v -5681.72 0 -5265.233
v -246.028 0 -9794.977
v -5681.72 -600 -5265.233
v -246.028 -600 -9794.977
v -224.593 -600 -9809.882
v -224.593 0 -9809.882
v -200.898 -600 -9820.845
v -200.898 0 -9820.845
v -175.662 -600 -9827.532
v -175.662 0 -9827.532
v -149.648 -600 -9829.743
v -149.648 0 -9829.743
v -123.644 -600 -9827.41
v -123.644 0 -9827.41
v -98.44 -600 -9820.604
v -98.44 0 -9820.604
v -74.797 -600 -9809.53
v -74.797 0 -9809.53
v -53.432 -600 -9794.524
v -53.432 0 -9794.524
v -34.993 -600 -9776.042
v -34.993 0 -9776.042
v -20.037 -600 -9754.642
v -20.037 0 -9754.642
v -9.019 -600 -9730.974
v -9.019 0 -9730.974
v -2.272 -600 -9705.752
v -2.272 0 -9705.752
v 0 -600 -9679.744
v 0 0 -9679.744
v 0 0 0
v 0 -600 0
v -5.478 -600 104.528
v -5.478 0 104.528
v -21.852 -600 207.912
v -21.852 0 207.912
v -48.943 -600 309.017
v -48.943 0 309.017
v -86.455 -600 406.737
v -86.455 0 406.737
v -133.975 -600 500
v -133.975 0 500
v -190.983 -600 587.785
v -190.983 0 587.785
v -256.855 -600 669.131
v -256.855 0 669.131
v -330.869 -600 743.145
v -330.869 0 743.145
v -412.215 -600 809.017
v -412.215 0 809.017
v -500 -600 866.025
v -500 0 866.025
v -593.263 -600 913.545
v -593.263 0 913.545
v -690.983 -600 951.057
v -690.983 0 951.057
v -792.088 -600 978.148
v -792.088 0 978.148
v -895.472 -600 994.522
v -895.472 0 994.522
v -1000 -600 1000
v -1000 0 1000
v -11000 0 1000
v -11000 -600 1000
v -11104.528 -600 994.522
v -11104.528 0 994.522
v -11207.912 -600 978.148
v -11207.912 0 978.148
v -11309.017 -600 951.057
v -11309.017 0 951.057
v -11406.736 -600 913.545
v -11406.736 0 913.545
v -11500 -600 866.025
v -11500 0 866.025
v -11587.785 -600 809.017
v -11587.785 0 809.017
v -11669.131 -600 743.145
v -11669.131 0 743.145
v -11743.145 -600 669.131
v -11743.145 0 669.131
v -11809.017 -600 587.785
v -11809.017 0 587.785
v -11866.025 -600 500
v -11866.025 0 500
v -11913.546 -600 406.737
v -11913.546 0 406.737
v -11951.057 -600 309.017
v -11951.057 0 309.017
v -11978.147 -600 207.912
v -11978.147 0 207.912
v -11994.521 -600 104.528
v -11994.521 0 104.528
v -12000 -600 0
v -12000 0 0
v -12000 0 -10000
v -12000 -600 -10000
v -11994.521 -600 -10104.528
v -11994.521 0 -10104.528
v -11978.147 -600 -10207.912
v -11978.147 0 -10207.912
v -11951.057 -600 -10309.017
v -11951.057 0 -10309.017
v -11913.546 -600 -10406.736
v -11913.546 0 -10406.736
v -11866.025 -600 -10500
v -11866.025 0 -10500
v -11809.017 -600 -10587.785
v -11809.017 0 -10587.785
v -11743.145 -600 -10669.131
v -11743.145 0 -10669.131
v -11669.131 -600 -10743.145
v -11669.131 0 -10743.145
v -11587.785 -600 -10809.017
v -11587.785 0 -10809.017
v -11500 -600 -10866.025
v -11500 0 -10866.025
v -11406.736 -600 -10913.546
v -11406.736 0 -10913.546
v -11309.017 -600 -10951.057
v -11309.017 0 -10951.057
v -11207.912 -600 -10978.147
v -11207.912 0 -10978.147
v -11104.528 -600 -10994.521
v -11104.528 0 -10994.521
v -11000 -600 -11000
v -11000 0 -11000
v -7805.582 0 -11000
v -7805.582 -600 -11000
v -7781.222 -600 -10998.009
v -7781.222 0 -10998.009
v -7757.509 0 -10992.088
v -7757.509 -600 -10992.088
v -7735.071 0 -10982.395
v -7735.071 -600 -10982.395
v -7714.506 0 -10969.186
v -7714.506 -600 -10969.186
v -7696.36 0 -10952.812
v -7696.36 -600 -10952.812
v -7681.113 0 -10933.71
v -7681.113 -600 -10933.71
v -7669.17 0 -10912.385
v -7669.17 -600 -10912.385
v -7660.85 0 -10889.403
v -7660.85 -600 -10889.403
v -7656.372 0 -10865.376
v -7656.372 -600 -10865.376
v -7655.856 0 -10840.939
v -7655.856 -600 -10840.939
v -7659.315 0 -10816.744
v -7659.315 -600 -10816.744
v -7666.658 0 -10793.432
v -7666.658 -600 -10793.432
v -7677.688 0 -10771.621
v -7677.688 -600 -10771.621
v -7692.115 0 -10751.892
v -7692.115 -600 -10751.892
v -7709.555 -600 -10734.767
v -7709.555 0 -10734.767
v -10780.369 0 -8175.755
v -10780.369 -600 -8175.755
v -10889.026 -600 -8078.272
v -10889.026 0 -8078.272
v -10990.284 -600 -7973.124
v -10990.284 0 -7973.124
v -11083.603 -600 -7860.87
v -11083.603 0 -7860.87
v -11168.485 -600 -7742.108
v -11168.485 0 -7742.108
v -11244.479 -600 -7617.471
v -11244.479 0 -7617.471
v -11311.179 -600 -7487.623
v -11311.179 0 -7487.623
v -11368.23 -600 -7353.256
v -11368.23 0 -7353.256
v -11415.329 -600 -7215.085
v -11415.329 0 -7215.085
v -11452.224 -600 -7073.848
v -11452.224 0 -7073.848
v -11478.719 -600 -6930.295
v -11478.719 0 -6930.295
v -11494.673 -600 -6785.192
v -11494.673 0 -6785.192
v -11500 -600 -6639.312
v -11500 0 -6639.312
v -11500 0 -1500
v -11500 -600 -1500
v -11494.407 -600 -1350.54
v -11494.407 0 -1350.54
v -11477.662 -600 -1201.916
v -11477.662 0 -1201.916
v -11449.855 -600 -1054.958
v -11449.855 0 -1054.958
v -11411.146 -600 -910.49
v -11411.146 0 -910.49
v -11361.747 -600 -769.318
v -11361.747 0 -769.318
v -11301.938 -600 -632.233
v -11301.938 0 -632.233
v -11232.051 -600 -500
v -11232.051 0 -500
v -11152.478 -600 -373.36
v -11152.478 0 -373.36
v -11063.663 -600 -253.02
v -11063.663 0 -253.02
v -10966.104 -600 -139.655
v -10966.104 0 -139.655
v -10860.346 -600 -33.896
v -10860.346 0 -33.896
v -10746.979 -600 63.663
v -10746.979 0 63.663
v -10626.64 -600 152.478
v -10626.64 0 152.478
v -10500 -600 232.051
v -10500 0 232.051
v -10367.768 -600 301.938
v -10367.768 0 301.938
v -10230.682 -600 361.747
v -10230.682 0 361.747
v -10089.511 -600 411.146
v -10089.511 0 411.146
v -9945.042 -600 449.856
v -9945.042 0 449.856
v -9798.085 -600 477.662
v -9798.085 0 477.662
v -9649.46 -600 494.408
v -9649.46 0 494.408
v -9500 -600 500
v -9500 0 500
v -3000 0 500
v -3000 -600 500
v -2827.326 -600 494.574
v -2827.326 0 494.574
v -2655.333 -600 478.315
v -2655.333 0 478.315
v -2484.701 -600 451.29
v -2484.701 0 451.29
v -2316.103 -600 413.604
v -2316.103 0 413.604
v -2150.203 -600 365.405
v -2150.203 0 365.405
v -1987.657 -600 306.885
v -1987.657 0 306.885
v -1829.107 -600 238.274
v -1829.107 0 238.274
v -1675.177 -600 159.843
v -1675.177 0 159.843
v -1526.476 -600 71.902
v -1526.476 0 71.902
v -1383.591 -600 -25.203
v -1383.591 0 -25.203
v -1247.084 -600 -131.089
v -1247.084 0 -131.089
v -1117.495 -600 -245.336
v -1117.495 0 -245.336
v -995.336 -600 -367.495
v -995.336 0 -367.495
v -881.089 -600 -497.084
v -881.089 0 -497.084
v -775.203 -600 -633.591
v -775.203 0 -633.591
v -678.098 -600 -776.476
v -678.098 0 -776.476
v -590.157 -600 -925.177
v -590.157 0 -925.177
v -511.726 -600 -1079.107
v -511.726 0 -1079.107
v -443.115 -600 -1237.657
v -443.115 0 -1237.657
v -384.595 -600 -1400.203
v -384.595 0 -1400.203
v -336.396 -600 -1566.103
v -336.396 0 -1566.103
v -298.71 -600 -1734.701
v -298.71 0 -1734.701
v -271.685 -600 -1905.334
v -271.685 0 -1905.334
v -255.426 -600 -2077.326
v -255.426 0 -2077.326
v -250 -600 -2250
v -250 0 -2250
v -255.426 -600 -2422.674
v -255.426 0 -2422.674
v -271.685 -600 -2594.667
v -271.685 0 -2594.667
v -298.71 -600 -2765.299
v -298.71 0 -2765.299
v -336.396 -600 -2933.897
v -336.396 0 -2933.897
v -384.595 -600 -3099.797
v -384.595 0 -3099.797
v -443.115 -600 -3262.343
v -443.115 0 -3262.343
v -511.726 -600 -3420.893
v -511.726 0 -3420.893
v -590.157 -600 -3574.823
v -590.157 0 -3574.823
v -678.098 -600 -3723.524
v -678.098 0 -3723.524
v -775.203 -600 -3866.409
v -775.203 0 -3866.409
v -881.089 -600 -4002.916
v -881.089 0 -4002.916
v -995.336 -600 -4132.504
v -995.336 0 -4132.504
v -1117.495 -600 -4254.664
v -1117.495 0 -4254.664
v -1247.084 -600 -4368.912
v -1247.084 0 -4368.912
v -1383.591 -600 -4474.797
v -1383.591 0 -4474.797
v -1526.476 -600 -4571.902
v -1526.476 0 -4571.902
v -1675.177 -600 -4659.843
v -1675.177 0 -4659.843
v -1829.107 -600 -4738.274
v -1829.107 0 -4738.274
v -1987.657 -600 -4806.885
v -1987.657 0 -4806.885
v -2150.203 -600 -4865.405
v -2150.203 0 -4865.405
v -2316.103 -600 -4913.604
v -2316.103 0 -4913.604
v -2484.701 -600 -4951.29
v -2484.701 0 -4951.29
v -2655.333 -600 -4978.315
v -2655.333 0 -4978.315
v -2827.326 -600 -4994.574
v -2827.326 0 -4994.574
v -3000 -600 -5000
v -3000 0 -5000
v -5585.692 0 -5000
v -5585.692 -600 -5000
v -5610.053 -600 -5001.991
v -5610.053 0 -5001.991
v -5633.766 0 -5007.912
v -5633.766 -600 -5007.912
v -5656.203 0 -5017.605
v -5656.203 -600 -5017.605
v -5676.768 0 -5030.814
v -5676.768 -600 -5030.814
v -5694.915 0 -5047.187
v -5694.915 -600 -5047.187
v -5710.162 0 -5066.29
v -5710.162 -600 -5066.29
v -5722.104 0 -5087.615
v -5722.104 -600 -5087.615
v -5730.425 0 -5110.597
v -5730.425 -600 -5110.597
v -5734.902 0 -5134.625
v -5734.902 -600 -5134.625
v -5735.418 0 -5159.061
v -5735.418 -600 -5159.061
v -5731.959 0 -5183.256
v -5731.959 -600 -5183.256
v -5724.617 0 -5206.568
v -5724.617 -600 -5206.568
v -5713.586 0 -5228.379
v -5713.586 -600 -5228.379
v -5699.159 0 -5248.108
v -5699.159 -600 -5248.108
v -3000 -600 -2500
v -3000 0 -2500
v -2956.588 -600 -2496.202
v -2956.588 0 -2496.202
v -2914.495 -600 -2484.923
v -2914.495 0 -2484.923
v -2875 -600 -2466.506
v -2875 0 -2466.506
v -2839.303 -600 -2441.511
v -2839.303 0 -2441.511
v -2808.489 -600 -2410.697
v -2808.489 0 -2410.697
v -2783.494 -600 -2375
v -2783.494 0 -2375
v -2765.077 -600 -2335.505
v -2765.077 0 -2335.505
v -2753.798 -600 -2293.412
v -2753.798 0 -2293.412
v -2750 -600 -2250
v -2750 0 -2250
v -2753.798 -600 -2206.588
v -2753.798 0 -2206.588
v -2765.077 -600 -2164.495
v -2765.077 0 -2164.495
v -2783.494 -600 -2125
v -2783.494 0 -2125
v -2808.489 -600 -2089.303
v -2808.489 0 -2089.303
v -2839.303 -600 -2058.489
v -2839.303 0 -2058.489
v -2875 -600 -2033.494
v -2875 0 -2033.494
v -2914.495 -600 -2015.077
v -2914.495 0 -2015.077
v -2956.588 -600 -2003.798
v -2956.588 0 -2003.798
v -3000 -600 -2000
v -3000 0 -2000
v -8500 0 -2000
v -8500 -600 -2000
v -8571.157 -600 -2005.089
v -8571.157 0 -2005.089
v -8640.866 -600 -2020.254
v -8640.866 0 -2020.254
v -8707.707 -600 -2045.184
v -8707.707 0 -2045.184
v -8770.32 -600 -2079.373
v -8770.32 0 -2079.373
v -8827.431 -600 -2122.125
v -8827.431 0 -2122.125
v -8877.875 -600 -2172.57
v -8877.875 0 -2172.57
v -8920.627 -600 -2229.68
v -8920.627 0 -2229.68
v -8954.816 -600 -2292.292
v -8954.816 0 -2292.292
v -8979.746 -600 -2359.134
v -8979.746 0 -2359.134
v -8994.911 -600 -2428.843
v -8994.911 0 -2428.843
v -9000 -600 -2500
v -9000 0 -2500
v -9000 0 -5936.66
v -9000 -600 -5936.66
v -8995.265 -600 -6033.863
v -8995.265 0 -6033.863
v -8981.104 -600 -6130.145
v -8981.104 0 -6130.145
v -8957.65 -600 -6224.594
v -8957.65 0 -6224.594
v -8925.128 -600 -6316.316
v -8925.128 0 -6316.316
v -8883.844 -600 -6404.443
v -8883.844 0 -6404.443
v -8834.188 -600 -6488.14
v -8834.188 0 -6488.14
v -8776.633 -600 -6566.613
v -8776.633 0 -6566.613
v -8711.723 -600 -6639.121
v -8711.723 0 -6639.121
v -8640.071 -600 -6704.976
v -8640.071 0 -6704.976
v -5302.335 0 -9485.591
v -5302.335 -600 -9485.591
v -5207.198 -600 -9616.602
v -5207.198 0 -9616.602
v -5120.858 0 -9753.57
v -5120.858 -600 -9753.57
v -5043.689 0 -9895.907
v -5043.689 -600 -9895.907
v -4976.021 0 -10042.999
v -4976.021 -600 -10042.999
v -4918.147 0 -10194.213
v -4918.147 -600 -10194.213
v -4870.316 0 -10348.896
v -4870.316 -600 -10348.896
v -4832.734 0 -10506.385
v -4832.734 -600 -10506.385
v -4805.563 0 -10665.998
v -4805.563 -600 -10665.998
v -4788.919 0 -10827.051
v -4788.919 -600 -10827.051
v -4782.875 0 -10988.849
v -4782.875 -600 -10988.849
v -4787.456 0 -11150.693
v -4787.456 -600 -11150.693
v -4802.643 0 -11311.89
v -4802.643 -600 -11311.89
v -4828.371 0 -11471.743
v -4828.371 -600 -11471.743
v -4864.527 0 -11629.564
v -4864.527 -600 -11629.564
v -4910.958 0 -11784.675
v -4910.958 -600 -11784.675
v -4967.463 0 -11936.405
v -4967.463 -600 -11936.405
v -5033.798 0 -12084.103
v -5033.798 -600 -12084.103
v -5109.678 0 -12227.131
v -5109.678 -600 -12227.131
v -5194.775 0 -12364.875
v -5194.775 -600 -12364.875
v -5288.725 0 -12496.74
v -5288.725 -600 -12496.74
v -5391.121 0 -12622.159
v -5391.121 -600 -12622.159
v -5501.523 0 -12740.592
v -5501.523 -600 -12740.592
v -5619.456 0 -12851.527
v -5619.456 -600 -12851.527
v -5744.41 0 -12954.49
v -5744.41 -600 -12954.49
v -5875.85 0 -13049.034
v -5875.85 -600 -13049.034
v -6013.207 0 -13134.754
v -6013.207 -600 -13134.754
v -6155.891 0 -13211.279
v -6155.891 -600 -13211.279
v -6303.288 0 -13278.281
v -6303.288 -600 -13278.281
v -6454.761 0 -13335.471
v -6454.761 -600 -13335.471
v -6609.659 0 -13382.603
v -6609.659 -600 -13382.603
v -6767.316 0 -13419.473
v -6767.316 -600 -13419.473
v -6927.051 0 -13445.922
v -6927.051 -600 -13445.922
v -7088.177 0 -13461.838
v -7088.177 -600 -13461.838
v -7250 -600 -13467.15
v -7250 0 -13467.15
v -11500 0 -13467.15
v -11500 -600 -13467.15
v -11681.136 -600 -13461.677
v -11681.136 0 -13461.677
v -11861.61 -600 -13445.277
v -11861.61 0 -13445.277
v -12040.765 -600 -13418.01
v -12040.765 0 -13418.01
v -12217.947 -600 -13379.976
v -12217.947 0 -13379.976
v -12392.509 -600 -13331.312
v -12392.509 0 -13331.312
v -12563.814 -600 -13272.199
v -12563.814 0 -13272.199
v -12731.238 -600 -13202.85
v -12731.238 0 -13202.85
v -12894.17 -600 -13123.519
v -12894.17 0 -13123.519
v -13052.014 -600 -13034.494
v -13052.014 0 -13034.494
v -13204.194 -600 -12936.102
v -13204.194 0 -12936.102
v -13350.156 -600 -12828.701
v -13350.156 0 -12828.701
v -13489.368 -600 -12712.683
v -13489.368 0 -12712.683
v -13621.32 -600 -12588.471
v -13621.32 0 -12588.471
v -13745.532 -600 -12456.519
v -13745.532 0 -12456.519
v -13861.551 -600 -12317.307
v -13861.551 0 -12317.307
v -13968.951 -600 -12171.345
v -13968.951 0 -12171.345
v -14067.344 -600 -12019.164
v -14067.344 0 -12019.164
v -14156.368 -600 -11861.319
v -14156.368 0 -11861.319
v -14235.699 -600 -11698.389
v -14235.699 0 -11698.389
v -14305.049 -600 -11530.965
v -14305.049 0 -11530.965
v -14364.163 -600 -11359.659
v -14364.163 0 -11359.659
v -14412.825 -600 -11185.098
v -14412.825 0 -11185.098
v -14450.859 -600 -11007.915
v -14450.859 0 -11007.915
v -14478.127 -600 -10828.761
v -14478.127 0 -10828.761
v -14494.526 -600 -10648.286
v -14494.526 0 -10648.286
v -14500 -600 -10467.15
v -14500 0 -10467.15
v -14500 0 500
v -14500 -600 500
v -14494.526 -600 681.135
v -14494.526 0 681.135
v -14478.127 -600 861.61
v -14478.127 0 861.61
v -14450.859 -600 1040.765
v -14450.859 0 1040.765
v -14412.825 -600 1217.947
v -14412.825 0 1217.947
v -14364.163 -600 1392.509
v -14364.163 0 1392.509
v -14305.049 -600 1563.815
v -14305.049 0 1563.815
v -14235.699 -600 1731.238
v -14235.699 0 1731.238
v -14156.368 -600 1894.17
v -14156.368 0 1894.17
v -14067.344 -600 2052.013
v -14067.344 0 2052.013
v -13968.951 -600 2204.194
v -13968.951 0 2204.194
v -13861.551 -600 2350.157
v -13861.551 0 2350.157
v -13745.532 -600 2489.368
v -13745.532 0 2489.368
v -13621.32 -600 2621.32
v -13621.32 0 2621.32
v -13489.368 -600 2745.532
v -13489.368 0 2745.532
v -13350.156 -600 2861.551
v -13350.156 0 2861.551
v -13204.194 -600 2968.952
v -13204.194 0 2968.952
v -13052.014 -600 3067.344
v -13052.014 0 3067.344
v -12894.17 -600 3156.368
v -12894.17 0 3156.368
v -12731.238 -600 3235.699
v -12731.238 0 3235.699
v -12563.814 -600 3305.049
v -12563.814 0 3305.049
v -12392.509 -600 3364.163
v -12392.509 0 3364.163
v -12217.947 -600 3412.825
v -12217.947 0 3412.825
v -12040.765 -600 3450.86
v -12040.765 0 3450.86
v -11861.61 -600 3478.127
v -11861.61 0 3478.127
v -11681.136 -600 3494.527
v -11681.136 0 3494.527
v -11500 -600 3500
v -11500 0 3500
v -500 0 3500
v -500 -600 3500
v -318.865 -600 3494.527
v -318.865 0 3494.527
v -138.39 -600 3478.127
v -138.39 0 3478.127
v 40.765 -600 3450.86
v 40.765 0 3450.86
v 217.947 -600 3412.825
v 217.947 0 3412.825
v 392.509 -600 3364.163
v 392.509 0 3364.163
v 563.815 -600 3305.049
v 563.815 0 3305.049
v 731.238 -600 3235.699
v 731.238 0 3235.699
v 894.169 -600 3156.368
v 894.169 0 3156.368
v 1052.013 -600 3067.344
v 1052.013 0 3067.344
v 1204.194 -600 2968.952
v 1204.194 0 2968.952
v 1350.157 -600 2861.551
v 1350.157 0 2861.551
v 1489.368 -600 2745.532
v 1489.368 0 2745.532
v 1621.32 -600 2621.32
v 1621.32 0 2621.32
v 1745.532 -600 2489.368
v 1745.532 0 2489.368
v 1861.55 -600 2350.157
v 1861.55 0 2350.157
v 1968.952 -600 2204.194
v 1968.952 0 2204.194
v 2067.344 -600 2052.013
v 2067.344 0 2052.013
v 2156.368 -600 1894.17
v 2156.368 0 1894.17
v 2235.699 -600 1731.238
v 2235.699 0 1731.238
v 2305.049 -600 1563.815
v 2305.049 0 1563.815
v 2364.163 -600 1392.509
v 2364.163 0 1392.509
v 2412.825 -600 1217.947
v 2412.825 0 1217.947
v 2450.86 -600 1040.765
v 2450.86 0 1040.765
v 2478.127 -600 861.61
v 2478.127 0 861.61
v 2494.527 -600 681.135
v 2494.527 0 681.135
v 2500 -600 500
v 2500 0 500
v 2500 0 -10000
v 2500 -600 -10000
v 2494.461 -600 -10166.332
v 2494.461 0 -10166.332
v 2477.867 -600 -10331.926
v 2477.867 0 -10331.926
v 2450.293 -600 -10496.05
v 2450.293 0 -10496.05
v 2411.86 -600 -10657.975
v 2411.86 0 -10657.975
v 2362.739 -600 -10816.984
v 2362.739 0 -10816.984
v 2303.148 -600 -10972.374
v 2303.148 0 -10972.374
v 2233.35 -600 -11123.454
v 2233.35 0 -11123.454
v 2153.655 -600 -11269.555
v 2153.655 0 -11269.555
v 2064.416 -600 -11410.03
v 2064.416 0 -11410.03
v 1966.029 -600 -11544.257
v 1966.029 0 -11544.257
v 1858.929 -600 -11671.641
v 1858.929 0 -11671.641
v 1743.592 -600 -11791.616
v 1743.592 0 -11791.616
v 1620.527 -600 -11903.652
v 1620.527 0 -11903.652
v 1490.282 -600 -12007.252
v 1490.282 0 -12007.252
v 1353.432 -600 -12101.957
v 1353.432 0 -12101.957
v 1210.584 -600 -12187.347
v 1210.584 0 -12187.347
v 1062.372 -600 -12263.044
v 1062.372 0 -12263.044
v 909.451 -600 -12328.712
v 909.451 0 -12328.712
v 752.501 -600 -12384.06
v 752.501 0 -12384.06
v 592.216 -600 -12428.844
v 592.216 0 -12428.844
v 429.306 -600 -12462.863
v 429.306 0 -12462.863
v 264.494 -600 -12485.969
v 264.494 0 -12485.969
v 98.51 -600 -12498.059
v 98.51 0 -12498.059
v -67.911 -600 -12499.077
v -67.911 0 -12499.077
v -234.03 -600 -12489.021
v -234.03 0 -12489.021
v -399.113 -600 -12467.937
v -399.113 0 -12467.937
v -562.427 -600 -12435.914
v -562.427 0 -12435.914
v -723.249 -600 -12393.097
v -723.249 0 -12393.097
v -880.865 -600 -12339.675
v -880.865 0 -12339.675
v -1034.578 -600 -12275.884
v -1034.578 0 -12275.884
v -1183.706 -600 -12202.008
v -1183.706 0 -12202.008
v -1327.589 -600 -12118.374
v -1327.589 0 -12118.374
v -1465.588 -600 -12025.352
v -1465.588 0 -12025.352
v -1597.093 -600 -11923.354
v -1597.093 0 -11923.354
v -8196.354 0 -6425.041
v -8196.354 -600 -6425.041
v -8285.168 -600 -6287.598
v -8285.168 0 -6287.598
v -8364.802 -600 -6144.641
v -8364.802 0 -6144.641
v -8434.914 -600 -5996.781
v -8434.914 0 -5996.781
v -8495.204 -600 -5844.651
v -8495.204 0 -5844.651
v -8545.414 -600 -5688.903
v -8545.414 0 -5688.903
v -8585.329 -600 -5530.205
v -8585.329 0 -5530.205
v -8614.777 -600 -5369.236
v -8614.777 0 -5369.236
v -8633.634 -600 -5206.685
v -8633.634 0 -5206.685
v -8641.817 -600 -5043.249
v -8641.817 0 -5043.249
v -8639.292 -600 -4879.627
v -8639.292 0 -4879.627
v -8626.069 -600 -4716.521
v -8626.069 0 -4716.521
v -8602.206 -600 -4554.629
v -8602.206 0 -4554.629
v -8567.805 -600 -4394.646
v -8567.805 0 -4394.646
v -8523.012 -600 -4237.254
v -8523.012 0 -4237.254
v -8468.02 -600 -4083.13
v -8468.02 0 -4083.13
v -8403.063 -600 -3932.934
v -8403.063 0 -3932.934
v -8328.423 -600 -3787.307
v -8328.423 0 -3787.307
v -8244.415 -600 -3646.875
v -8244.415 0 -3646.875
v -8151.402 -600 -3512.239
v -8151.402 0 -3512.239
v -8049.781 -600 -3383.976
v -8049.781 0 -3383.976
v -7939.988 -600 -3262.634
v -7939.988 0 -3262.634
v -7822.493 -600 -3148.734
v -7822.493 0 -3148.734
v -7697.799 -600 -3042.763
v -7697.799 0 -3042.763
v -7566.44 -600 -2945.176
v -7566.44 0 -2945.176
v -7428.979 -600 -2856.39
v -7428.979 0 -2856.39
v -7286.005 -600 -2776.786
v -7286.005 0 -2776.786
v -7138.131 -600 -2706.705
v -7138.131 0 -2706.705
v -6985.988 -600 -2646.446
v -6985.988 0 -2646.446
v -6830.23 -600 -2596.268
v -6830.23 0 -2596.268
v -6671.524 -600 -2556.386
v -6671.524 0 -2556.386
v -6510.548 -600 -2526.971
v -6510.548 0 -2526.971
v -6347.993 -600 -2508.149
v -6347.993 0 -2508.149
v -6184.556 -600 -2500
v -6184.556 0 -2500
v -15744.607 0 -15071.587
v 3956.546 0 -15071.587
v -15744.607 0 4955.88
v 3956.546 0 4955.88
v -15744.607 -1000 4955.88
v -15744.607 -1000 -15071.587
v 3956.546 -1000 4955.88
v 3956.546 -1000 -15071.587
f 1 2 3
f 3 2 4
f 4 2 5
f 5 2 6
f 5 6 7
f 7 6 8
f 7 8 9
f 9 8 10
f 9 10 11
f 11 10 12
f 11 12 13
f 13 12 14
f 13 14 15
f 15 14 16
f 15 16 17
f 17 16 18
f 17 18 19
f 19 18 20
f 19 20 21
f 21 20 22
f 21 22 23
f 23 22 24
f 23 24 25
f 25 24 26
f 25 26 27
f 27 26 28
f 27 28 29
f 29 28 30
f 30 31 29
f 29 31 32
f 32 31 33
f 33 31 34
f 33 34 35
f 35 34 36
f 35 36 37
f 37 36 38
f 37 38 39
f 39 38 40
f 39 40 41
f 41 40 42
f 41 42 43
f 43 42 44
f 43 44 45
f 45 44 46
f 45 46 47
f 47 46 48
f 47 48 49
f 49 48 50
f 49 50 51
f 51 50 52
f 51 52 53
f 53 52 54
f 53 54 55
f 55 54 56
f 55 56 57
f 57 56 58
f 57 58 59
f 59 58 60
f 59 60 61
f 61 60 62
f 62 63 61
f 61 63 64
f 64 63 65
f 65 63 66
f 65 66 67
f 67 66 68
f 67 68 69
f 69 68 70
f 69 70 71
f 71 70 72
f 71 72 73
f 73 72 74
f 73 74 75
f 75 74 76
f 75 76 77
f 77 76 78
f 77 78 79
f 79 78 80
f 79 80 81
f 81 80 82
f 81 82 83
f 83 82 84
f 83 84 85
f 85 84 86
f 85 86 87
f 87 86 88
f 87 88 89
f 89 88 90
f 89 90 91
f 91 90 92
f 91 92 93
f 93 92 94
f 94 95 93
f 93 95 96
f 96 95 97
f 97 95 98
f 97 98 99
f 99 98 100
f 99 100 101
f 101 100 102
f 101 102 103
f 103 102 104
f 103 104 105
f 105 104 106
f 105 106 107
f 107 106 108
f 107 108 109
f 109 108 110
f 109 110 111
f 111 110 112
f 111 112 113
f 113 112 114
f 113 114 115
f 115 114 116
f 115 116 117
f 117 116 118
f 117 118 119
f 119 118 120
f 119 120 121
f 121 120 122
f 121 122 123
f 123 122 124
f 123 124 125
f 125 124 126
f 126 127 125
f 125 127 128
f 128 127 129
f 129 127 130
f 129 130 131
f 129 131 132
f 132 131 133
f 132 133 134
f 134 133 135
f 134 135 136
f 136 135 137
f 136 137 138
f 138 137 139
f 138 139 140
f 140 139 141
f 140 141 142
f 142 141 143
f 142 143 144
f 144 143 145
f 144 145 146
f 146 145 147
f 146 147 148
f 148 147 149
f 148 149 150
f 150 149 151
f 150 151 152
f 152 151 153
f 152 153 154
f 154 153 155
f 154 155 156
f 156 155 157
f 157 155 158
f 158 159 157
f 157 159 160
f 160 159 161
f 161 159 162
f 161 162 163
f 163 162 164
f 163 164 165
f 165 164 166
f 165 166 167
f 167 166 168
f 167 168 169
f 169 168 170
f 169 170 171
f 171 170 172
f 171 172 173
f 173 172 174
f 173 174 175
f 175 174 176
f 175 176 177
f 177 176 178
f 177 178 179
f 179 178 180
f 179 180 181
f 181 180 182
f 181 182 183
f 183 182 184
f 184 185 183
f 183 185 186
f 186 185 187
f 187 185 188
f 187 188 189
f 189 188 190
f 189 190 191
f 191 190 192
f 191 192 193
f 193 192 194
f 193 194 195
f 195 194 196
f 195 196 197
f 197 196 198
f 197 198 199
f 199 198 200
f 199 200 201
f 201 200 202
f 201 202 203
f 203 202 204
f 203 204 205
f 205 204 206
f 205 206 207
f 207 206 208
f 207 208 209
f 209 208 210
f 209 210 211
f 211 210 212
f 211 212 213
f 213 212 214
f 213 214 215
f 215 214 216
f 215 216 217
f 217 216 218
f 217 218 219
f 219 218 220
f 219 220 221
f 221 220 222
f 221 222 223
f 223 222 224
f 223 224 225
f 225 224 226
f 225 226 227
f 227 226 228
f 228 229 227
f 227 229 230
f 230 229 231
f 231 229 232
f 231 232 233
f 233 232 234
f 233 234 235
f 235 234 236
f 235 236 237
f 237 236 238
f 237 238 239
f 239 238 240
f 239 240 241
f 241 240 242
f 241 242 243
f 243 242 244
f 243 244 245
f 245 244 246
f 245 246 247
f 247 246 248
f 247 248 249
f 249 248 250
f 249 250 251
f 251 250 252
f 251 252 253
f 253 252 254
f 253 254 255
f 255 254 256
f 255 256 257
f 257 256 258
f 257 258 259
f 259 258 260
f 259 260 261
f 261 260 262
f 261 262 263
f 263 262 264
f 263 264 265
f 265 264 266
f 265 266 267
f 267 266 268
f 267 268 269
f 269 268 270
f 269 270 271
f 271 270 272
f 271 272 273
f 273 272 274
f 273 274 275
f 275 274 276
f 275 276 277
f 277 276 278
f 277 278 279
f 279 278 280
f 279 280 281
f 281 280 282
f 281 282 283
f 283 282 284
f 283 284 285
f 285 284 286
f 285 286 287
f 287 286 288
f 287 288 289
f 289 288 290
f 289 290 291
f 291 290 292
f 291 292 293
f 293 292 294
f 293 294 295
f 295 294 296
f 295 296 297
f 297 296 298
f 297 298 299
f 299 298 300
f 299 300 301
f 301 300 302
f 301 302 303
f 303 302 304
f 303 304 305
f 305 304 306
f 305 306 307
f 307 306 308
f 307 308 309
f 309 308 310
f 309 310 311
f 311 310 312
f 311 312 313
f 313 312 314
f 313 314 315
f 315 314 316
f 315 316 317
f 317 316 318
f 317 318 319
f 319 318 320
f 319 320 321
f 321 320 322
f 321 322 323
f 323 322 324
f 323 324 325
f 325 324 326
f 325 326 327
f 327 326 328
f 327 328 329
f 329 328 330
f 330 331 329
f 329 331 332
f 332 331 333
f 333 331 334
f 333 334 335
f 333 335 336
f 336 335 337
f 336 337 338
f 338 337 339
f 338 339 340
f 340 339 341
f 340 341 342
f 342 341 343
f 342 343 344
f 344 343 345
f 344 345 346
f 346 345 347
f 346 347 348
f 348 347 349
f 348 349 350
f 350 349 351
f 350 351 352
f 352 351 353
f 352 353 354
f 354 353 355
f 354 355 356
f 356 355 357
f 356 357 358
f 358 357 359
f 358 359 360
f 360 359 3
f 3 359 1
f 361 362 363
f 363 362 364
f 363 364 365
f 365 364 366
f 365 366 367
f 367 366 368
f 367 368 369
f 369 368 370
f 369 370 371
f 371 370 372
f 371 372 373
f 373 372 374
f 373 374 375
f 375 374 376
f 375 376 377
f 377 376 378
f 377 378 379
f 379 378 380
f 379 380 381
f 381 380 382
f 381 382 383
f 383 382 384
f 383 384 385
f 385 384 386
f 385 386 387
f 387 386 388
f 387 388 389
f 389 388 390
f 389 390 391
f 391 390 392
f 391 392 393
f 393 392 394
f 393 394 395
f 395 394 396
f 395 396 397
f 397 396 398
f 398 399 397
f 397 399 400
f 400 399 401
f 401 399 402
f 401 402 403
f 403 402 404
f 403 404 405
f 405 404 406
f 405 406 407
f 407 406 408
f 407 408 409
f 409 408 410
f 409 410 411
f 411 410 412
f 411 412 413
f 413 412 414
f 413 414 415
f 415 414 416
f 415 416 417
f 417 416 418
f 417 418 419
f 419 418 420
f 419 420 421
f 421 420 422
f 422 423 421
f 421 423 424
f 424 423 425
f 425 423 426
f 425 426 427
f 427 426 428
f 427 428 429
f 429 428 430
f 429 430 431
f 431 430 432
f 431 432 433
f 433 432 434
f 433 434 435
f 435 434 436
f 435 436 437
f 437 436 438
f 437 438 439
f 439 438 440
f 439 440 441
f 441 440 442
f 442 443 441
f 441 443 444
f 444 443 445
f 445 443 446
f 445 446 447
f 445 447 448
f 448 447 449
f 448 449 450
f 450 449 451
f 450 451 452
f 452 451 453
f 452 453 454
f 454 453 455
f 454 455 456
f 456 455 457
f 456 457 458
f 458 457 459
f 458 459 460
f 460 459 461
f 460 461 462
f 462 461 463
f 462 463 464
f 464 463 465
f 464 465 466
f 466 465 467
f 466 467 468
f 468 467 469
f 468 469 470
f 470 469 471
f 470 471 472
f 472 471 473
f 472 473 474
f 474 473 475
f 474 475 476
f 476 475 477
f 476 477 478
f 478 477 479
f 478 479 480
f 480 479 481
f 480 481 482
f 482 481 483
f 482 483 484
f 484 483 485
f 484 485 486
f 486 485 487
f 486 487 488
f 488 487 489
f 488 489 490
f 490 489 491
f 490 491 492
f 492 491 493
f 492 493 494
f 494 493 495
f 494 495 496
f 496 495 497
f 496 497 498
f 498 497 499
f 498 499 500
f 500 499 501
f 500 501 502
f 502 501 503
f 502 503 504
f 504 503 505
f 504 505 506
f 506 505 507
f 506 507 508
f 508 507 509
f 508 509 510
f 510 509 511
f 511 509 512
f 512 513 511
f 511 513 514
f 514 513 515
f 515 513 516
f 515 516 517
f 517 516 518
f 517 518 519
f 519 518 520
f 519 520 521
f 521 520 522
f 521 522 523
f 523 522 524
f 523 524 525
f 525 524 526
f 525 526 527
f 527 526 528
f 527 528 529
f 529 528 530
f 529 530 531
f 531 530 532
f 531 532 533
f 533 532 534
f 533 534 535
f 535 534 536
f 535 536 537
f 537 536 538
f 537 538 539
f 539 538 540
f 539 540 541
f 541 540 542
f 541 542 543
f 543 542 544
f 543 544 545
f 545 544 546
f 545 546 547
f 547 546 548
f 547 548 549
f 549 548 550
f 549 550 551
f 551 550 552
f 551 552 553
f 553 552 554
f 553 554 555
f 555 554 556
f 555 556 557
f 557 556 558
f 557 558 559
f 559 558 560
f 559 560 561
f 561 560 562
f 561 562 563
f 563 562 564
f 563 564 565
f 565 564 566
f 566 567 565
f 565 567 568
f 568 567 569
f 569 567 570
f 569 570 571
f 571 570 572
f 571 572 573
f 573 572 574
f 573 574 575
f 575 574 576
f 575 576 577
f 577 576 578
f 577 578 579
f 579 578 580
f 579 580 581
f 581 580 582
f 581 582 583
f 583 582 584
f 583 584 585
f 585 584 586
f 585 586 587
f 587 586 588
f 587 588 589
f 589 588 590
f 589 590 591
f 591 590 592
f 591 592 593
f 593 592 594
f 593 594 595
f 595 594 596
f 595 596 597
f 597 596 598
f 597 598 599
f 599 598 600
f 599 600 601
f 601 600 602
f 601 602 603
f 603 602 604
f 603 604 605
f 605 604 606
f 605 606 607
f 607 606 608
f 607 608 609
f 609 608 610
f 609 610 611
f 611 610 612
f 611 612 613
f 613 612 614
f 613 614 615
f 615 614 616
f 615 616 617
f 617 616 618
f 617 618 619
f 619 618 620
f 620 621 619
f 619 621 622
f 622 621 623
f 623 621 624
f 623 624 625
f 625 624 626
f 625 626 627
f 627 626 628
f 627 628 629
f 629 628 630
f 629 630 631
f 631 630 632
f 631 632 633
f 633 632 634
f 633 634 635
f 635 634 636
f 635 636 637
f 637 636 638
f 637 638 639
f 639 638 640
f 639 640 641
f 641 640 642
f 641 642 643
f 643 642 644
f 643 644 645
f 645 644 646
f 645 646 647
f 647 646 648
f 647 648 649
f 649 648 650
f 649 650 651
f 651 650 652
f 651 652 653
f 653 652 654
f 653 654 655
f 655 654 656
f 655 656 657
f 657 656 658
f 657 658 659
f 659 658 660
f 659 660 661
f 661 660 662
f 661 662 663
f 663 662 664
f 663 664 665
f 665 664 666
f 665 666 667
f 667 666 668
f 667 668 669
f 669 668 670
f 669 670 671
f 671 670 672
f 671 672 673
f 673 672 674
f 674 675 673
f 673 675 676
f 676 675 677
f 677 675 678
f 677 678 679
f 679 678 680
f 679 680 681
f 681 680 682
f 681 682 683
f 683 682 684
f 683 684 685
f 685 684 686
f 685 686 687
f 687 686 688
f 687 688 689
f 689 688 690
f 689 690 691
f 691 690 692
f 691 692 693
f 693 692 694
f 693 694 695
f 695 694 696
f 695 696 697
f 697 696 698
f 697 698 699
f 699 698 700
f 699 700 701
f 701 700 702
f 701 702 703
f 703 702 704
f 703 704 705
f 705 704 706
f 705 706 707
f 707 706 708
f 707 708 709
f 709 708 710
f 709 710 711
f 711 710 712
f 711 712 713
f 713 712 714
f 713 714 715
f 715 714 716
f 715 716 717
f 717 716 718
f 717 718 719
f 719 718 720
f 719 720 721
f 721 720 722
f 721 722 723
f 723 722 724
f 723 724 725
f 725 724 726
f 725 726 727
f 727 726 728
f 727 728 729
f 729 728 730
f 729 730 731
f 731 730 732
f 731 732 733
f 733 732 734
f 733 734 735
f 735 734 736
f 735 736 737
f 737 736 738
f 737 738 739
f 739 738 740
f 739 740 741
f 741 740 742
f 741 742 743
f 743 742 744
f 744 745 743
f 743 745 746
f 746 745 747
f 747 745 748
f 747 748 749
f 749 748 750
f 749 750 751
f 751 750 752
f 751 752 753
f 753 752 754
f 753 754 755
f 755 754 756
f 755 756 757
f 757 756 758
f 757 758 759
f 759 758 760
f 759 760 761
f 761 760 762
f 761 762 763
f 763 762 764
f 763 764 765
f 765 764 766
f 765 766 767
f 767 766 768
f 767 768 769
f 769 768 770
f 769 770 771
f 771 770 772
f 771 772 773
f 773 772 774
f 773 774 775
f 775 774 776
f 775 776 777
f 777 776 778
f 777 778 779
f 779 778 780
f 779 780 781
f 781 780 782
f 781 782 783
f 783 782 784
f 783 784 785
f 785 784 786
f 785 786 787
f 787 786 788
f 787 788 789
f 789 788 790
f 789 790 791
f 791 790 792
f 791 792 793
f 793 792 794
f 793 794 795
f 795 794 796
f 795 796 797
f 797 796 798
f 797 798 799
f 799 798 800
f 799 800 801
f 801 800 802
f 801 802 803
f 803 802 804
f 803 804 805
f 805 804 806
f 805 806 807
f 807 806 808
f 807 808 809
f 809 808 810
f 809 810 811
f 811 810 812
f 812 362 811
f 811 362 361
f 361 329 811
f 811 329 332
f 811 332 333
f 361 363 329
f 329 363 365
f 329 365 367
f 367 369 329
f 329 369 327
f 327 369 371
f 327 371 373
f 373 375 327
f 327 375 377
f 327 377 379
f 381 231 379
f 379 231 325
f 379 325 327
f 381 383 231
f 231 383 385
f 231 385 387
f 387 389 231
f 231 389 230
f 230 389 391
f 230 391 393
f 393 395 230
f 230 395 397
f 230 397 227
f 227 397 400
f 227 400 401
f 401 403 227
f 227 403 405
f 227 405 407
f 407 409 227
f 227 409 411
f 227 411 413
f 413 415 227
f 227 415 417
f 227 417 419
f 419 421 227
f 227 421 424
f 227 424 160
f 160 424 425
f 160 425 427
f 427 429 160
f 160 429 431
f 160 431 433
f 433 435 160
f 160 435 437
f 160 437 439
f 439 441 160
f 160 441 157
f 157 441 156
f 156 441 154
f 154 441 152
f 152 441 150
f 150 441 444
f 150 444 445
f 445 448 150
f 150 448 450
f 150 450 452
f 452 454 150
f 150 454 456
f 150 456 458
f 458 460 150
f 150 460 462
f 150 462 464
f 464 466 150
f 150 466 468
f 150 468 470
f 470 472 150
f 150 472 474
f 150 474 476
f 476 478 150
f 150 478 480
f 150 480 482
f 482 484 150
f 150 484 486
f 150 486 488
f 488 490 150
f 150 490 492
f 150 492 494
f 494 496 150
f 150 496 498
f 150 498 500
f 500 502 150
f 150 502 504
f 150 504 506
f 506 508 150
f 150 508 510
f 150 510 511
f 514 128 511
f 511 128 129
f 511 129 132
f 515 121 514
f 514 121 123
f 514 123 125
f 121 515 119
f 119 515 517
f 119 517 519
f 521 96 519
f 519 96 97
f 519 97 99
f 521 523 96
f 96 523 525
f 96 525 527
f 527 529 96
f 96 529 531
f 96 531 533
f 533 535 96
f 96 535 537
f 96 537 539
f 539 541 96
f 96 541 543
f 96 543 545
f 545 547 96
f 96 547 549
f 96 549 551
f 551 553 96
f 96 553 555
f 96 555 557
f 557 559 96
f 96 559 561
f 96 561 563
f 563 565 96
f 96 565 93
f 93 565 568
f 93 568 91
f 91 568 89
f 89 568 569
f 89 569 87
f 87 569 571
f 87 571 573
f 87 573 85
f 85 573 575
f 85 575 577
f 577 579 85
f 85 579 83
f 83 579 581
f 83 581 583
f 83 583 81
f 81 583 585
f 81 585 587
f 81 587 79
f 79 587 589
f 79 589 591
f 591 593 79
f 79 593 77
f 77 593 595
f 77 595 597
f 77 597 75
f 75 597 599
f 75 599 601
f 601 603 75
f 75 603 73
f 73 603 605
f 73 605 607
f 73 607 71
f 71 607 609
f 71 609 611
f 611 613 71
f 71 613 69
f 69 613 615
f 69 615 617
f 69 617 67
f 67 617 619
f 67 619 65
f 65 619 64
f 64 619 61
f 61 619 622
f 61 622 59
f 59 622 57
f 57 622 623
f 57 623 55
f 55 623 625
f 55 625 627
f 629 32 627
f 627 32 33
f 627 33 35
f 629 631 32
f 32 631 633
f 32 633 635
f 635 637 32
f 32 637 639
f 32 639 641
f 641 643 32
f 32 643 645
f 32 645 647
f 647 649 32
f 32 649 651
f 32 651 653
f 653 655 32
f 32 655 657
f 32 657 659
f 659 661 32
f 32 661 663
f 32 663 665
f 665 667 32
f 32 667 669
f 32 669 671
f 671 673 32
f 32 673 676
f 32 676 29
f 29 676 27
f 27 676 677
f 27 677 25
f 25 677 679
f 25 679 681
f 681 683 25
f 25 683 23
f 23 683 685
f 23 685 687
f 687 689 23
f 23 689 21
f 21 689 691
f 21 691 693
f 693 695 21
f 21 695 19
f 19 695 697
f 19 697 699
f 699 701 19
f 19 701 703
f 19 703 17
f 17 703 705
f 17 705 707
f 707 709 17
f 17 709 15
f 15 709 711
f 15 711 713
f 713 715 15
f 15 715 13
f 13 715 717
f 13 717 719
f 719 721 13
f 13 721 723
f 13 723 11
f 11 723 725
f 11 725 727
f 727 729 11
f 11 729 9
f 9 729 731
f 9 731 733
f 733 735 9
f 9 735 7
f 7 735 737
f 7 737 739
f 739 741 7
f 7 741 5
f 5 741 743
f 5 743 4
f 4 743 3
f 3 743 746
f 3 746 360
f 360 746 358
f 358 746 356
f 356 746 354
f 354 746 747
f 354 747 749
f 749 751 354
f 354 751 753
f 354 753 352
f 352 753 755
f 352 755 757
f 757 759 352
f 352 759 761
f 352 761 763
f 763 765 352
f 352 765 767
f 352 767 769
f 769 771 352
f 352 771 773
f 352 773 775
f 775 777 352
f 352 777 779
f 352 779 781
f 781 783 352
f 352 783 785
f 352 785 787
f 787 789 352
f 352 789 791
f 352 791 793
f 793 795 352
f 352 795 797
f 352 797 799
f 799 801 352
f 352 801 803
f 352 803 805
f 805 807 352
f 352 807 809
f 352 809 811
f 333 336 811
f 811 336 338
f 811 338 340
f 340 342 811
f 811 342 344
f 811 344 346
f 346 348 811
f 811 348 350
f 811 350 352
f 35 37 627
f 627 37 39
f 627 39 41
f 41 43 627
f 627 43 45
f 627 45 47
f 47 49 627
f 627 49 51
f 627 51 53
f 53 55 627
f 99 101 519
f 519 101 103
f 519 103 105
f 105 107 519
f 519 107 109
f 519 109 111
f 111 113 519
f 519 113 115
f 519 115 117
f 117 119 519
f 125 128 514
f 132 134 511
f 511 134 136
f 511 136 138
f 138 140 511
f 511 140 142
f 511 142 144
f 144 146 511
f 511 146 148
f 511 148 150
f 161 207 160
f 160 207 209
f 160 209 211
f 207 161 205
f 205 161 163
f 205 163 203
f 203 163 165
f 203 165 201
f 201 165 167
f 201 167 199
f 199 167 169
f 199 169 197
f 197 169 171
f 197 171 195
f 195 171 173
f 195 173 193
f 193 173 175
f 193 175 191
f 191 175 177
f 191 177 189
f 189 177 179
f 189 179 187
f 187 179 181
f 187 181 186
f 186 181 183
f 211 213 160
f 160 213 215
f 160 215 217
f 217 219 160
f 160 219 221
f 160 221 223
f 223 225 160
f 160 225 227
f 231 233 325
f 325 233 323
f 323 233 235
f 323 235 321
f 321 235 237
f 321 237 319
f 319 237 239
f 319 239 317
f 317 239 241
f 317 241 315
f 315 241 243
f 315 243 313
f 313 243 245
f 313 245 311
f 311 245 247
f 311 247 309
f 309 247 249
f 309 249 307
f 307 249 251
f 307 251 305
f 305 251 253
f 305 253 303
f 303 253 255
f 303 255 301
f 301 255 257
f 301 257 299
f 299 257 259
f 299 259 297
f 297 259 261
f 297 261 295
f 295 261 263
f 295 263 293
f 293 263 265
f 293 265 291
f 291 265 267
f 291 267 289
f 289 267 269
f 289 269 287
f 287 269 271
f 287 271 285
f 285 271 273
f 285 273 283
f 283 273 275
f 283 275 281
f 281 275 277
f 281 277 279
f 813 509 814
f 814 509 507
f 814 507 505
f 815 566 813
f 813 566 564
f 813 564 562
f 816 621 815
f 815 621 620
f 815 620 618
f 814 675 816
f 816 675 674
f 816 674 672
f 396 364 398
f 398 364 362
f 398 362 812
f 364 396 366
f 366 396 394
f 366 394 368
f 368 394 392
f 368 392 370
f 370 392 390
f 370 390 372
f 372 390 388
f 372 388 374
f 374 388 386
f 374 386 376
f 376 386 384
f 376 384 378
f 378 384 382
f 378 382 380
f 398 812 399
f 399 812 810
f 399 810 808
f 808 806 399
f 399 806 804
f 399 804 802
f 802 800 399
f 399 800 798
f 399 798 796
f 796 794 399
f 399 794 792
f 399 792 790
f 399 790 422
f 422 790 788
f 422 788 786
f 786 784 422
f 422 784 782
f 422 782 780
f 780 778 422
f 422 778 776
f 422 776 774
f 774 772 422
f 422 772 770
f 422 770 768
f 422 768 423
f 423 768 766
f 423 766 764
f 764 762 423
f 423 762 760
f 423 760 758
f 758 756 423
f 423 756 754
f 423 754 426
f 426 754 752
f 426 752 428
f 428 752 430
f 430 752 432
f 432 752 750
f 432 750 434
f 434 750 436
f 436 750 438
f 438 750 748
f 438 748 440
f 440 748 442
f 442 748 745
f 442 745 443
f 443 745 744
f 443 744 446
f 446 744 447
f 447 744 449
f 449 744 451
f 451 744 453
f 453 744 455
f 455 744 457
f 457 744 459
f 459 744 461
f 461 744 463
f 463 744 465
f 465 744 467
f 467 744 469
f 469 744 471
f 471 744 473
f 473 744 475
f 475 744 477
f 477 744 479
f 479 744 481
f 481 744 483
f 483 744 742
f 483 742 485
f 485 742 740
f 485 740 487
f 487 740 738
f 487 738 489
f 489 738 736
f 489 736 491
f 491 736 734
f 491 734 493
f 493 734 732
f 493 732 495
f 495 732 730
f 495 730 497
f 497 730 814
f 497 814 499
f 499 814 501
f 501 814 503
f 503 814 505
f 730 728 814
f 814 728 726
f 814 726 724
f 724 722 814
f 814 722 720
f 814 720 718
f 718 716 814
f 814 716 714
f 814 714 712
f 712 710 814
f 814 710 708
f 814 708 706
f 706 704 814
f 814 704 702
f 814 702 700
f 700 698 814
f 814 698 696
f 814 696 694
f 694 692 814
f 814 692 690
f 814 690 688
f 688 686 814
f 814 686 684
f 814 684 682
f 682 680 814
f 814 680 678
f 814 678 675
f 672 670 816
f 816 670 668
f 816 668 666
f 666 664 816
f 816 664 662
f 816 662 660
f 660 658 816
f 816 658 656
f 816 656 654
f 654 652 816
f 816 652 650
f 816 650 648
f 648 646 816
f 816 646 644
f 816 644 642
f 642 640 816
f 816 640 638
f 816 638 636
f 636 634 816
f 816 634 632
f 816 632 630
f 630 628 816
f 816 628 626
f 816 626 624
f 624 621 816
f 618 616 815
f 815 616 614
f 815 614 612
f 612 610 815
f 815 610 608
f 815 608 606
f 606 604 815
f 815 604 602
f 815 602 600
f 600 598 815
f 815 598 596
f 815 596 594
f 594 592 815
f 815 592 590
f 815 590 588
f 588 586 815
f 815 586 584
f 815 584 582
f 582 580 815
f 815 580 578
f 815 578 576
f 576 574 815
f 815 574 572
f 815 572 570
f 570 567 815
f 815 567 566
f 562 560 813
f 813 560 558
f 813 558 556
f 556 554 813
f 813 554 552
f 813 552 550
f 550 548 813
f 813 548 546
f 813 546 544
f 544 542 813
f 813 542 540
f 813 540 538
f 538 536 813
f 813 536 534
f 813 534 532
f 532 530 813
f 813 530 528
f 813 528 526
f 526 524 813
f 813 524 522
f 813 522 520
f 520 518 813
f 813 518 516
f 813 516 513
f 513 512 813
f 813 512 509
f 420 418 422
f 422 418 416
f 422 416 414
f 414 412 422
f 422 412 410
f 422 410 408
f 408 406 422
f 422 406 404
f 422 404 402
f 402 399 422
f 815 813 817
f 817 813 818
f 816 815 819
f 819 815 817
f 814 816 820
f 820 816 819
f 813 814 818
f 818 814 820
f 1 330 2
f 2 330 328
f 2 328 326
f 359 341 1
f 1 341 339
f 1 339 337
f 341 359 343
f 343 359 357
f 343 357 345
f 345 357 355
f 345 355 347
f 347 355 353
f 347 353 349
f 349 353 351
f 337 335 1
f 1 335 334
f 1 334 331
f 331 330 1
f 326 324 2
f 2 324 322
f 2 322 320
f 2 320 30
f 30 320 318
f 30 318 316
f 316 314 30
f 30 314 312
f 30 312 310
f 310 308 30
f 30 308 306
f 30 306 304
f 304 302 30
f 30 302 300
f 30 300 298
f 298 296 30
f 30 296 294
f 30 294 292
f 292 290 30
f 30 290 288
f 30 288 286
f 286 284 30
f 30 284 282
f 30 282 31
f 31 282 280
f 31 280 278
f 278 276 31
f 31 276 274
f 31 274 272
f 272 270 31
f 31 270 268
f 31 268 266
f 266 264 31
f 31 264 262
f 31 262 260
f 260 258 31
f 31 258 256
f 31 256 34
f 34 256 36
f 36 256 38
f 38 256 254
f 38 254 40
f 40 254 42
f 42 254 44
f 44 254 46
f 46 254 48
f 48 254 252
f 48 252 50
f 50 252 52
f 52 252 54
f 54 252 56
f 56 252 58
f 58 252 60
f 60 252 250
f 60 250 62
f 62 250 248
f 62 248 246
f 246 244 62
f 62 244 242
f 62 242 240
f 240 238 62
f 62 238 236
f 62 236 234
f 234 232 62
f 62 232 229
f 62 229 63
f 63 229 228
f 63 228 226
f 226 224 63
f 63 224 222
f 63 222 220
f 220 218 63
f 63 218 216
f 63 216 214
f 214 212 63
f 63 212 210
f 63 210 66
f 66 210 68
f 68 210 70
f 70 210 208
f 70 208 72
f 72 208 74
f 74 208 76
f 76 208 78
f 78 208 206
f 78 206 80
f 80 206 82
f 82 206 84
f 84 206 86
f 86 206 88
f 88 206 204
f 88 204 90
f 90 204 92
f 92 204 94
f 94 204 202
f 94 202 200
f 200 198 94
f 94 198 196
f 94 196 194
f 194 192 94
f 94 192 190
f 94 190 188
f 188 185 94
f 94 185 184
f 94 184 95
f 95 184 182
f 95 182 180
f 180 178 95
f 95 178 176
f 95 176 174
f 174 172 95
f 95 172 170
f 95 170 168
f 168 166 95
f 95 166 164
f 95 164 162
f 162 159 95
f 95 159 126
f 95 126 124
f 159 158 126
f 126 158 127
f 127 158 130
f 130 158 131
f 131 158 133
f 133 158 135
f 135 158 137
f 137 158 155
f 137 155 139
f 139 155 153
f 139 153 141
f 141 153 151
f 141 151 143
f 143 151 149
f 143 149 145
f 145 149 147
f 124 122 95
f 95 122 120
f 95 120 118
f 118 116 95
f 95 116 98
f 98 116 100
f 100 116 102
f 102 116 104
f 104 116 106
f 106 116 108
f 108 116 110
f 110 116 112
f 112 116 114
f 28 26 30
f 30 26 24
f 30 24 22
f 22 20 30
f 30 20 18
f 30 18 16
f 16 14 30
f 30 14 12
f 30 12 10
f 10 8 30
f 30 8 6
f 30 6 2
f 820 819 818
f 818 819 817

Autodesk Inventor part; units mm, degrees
ref_plane "YZ Plane" through (0, 0, 0) normal (1, 0, 0) x (0, 1, 0)
ref_plane "XZ Plane" through (0, 0, 0) normal (0, 1, 0) x (-1, 0, 0)
ref_plane "XY Plane" through (0, 0, 0) normal (0, 0, 1) x (1, 0, 0)
sketch "Boceto2" plane through (0, 0, 0) normal (0, 1, 0) x (-1, 0, 0)
  line L0 (-3956.5464, 4955.8803) -> (15744.6074, 4955.8803)
  line L1 (15744.6074, 4955.8803) -> (15744.6074, -15071.5867)
  line L2 (15744.6074, -15071.5867) -> (-3956.5464, -15071.5867)
  line L3 (-3956.5464, -15071.5867) -> (-3956.5464, 4955.8803)
  point P0 (0, 0)
extrude "Extrusión1" add sketch "Boceto2" against normal blind 1000
sketch "Boceto1" plane through (0, 0, 0) normal (0, 1, 0) x (-1, 0, 0)
  line L0 (0, 0) -> (0, -9679.7438)
  line L1 (1000, 1000) -> (11000, 1000)
  line L2 (12000, 0) -> (12000, -10000)
  arc A0 (12000, 0) -> (11000, 1000) centre (11000, 0) ccw
  arc A1 (1000, 1000) -> (0, 0) centre (1000, 0) ccw
  arc A2 (11000, -11000) -> (12000, -10000) centre (11000, -10000) ccw
  line L3 (500, -10000) -> (6654.0664, -10000) construction
  line L4 (8500, -2000) -> (3000, -2000)
  line L5 (5681.7202, -5265.2332) -> (246.0277, -9794.977)
  line L6 (9000, -2500) -> (9000, -5936.6603)
  line L7 (11000, -11000) -> (7805.5821, -11000)
  line L8 (11500, -1500) -> (11500, -6639.3123)
  line L9 (10780.3688, -8175.7549) -> (7709.5545, -10734.7668)
  line L10 (14500, 500) -> (14500, -10467.1502)
  line L11 (11500, 3500) -> (500, 3500)
  arc A3 (14500, 500) -> (11500, 3500) centre (11500, 500) ccw
  arc A4 (11500, -13467.1502) -> (14500, -10467.1502) centre (11500, -10467.1502) ccw
  arc A5 (500, 3500) -> (-2500, 500) centre (500, 500) ccw
  arc A6 (9000, -2500) -> (8500, -2000) centre (8500, -2500) ccw
  arc A7 (3000, -2000) -> (3000, -2500) centre (3000, -2250) ccw
  arc A8 (5681.7202, -5265.2332) -> (5585.6925, -5000) centre (5585.6925, -5150) ccw
  arc A9 (7709.5545, -10734.7668) -> (7805.5821, -11000) centre (7805.5821, -10850) ccw
  arc A10 (0, -9679.7438) -> (246.0277, -9794.977) centre (150, -9679.7438) ccw
  arc A11 (8196.3535, -6425.0403) -> (6184.5554, -2500) centre (6141.8269, -4999.9992) ccw
  arc A12 (3000, 500) -> (3042.8411, -4999.6663) centre (3000, -2250) ccw
  line L12 (3000, 500) -> (9500, 500)
  line L13 (5585.6925, -5000) -> (3000, -5000)
  arc A13 (5302.3356, -9485.5913) -> (7250, -13467.1502) centre (7250, -11000) ccw
  line L14 (8640.0715, -6704.9756) -> (5302.3356, -9485.5913)
  line L15 (7250, -13467.1502) -> (11500, -13467.1502)
  arc A14 (-2500, -10000) -> (1603.4572, -11918.0524) centre (0, -10000) ccw
  line L16 (1597.0931, -11923.3548) -> (8196.3535, -6425.0403)
  arc A15 (11500, -1500) -> (9500, 500) centre (9500, -1500) ccw
  arc A16 (10780.3688, -8175.7549) -> (11500, -6639.3123) centre (9500, -6639.3123) ccw
  arc A17 (8640.0715, -6704.9756) -> (9000, -5936.6603) centre (8000, -5936.6603) ccw
  line L17 (6184.5554, -2500) -> (3000, -2500)
  line L18 (-2500, -10000) -> (-2500, 500)
  dimension "d0" = 10000
  dimension "d1" = 10000
  dimension "d2" = 10000
  dimension "d21" = 3000
  dimension "d22" = 500
  dimension "d23" = 150
  dimension "d24" = 2000
  dimension "d25" = 2000
  dimension "d26" = 1000
extrude "Extrusión2" cut sketch "Boceto1" against normal blind 600 contours L4 A7 L17 A11 L16 A14 L18 A5 L11 A3 L10 A4 L15 A13 L14 A17 L6 A6
properties part number "pista"
